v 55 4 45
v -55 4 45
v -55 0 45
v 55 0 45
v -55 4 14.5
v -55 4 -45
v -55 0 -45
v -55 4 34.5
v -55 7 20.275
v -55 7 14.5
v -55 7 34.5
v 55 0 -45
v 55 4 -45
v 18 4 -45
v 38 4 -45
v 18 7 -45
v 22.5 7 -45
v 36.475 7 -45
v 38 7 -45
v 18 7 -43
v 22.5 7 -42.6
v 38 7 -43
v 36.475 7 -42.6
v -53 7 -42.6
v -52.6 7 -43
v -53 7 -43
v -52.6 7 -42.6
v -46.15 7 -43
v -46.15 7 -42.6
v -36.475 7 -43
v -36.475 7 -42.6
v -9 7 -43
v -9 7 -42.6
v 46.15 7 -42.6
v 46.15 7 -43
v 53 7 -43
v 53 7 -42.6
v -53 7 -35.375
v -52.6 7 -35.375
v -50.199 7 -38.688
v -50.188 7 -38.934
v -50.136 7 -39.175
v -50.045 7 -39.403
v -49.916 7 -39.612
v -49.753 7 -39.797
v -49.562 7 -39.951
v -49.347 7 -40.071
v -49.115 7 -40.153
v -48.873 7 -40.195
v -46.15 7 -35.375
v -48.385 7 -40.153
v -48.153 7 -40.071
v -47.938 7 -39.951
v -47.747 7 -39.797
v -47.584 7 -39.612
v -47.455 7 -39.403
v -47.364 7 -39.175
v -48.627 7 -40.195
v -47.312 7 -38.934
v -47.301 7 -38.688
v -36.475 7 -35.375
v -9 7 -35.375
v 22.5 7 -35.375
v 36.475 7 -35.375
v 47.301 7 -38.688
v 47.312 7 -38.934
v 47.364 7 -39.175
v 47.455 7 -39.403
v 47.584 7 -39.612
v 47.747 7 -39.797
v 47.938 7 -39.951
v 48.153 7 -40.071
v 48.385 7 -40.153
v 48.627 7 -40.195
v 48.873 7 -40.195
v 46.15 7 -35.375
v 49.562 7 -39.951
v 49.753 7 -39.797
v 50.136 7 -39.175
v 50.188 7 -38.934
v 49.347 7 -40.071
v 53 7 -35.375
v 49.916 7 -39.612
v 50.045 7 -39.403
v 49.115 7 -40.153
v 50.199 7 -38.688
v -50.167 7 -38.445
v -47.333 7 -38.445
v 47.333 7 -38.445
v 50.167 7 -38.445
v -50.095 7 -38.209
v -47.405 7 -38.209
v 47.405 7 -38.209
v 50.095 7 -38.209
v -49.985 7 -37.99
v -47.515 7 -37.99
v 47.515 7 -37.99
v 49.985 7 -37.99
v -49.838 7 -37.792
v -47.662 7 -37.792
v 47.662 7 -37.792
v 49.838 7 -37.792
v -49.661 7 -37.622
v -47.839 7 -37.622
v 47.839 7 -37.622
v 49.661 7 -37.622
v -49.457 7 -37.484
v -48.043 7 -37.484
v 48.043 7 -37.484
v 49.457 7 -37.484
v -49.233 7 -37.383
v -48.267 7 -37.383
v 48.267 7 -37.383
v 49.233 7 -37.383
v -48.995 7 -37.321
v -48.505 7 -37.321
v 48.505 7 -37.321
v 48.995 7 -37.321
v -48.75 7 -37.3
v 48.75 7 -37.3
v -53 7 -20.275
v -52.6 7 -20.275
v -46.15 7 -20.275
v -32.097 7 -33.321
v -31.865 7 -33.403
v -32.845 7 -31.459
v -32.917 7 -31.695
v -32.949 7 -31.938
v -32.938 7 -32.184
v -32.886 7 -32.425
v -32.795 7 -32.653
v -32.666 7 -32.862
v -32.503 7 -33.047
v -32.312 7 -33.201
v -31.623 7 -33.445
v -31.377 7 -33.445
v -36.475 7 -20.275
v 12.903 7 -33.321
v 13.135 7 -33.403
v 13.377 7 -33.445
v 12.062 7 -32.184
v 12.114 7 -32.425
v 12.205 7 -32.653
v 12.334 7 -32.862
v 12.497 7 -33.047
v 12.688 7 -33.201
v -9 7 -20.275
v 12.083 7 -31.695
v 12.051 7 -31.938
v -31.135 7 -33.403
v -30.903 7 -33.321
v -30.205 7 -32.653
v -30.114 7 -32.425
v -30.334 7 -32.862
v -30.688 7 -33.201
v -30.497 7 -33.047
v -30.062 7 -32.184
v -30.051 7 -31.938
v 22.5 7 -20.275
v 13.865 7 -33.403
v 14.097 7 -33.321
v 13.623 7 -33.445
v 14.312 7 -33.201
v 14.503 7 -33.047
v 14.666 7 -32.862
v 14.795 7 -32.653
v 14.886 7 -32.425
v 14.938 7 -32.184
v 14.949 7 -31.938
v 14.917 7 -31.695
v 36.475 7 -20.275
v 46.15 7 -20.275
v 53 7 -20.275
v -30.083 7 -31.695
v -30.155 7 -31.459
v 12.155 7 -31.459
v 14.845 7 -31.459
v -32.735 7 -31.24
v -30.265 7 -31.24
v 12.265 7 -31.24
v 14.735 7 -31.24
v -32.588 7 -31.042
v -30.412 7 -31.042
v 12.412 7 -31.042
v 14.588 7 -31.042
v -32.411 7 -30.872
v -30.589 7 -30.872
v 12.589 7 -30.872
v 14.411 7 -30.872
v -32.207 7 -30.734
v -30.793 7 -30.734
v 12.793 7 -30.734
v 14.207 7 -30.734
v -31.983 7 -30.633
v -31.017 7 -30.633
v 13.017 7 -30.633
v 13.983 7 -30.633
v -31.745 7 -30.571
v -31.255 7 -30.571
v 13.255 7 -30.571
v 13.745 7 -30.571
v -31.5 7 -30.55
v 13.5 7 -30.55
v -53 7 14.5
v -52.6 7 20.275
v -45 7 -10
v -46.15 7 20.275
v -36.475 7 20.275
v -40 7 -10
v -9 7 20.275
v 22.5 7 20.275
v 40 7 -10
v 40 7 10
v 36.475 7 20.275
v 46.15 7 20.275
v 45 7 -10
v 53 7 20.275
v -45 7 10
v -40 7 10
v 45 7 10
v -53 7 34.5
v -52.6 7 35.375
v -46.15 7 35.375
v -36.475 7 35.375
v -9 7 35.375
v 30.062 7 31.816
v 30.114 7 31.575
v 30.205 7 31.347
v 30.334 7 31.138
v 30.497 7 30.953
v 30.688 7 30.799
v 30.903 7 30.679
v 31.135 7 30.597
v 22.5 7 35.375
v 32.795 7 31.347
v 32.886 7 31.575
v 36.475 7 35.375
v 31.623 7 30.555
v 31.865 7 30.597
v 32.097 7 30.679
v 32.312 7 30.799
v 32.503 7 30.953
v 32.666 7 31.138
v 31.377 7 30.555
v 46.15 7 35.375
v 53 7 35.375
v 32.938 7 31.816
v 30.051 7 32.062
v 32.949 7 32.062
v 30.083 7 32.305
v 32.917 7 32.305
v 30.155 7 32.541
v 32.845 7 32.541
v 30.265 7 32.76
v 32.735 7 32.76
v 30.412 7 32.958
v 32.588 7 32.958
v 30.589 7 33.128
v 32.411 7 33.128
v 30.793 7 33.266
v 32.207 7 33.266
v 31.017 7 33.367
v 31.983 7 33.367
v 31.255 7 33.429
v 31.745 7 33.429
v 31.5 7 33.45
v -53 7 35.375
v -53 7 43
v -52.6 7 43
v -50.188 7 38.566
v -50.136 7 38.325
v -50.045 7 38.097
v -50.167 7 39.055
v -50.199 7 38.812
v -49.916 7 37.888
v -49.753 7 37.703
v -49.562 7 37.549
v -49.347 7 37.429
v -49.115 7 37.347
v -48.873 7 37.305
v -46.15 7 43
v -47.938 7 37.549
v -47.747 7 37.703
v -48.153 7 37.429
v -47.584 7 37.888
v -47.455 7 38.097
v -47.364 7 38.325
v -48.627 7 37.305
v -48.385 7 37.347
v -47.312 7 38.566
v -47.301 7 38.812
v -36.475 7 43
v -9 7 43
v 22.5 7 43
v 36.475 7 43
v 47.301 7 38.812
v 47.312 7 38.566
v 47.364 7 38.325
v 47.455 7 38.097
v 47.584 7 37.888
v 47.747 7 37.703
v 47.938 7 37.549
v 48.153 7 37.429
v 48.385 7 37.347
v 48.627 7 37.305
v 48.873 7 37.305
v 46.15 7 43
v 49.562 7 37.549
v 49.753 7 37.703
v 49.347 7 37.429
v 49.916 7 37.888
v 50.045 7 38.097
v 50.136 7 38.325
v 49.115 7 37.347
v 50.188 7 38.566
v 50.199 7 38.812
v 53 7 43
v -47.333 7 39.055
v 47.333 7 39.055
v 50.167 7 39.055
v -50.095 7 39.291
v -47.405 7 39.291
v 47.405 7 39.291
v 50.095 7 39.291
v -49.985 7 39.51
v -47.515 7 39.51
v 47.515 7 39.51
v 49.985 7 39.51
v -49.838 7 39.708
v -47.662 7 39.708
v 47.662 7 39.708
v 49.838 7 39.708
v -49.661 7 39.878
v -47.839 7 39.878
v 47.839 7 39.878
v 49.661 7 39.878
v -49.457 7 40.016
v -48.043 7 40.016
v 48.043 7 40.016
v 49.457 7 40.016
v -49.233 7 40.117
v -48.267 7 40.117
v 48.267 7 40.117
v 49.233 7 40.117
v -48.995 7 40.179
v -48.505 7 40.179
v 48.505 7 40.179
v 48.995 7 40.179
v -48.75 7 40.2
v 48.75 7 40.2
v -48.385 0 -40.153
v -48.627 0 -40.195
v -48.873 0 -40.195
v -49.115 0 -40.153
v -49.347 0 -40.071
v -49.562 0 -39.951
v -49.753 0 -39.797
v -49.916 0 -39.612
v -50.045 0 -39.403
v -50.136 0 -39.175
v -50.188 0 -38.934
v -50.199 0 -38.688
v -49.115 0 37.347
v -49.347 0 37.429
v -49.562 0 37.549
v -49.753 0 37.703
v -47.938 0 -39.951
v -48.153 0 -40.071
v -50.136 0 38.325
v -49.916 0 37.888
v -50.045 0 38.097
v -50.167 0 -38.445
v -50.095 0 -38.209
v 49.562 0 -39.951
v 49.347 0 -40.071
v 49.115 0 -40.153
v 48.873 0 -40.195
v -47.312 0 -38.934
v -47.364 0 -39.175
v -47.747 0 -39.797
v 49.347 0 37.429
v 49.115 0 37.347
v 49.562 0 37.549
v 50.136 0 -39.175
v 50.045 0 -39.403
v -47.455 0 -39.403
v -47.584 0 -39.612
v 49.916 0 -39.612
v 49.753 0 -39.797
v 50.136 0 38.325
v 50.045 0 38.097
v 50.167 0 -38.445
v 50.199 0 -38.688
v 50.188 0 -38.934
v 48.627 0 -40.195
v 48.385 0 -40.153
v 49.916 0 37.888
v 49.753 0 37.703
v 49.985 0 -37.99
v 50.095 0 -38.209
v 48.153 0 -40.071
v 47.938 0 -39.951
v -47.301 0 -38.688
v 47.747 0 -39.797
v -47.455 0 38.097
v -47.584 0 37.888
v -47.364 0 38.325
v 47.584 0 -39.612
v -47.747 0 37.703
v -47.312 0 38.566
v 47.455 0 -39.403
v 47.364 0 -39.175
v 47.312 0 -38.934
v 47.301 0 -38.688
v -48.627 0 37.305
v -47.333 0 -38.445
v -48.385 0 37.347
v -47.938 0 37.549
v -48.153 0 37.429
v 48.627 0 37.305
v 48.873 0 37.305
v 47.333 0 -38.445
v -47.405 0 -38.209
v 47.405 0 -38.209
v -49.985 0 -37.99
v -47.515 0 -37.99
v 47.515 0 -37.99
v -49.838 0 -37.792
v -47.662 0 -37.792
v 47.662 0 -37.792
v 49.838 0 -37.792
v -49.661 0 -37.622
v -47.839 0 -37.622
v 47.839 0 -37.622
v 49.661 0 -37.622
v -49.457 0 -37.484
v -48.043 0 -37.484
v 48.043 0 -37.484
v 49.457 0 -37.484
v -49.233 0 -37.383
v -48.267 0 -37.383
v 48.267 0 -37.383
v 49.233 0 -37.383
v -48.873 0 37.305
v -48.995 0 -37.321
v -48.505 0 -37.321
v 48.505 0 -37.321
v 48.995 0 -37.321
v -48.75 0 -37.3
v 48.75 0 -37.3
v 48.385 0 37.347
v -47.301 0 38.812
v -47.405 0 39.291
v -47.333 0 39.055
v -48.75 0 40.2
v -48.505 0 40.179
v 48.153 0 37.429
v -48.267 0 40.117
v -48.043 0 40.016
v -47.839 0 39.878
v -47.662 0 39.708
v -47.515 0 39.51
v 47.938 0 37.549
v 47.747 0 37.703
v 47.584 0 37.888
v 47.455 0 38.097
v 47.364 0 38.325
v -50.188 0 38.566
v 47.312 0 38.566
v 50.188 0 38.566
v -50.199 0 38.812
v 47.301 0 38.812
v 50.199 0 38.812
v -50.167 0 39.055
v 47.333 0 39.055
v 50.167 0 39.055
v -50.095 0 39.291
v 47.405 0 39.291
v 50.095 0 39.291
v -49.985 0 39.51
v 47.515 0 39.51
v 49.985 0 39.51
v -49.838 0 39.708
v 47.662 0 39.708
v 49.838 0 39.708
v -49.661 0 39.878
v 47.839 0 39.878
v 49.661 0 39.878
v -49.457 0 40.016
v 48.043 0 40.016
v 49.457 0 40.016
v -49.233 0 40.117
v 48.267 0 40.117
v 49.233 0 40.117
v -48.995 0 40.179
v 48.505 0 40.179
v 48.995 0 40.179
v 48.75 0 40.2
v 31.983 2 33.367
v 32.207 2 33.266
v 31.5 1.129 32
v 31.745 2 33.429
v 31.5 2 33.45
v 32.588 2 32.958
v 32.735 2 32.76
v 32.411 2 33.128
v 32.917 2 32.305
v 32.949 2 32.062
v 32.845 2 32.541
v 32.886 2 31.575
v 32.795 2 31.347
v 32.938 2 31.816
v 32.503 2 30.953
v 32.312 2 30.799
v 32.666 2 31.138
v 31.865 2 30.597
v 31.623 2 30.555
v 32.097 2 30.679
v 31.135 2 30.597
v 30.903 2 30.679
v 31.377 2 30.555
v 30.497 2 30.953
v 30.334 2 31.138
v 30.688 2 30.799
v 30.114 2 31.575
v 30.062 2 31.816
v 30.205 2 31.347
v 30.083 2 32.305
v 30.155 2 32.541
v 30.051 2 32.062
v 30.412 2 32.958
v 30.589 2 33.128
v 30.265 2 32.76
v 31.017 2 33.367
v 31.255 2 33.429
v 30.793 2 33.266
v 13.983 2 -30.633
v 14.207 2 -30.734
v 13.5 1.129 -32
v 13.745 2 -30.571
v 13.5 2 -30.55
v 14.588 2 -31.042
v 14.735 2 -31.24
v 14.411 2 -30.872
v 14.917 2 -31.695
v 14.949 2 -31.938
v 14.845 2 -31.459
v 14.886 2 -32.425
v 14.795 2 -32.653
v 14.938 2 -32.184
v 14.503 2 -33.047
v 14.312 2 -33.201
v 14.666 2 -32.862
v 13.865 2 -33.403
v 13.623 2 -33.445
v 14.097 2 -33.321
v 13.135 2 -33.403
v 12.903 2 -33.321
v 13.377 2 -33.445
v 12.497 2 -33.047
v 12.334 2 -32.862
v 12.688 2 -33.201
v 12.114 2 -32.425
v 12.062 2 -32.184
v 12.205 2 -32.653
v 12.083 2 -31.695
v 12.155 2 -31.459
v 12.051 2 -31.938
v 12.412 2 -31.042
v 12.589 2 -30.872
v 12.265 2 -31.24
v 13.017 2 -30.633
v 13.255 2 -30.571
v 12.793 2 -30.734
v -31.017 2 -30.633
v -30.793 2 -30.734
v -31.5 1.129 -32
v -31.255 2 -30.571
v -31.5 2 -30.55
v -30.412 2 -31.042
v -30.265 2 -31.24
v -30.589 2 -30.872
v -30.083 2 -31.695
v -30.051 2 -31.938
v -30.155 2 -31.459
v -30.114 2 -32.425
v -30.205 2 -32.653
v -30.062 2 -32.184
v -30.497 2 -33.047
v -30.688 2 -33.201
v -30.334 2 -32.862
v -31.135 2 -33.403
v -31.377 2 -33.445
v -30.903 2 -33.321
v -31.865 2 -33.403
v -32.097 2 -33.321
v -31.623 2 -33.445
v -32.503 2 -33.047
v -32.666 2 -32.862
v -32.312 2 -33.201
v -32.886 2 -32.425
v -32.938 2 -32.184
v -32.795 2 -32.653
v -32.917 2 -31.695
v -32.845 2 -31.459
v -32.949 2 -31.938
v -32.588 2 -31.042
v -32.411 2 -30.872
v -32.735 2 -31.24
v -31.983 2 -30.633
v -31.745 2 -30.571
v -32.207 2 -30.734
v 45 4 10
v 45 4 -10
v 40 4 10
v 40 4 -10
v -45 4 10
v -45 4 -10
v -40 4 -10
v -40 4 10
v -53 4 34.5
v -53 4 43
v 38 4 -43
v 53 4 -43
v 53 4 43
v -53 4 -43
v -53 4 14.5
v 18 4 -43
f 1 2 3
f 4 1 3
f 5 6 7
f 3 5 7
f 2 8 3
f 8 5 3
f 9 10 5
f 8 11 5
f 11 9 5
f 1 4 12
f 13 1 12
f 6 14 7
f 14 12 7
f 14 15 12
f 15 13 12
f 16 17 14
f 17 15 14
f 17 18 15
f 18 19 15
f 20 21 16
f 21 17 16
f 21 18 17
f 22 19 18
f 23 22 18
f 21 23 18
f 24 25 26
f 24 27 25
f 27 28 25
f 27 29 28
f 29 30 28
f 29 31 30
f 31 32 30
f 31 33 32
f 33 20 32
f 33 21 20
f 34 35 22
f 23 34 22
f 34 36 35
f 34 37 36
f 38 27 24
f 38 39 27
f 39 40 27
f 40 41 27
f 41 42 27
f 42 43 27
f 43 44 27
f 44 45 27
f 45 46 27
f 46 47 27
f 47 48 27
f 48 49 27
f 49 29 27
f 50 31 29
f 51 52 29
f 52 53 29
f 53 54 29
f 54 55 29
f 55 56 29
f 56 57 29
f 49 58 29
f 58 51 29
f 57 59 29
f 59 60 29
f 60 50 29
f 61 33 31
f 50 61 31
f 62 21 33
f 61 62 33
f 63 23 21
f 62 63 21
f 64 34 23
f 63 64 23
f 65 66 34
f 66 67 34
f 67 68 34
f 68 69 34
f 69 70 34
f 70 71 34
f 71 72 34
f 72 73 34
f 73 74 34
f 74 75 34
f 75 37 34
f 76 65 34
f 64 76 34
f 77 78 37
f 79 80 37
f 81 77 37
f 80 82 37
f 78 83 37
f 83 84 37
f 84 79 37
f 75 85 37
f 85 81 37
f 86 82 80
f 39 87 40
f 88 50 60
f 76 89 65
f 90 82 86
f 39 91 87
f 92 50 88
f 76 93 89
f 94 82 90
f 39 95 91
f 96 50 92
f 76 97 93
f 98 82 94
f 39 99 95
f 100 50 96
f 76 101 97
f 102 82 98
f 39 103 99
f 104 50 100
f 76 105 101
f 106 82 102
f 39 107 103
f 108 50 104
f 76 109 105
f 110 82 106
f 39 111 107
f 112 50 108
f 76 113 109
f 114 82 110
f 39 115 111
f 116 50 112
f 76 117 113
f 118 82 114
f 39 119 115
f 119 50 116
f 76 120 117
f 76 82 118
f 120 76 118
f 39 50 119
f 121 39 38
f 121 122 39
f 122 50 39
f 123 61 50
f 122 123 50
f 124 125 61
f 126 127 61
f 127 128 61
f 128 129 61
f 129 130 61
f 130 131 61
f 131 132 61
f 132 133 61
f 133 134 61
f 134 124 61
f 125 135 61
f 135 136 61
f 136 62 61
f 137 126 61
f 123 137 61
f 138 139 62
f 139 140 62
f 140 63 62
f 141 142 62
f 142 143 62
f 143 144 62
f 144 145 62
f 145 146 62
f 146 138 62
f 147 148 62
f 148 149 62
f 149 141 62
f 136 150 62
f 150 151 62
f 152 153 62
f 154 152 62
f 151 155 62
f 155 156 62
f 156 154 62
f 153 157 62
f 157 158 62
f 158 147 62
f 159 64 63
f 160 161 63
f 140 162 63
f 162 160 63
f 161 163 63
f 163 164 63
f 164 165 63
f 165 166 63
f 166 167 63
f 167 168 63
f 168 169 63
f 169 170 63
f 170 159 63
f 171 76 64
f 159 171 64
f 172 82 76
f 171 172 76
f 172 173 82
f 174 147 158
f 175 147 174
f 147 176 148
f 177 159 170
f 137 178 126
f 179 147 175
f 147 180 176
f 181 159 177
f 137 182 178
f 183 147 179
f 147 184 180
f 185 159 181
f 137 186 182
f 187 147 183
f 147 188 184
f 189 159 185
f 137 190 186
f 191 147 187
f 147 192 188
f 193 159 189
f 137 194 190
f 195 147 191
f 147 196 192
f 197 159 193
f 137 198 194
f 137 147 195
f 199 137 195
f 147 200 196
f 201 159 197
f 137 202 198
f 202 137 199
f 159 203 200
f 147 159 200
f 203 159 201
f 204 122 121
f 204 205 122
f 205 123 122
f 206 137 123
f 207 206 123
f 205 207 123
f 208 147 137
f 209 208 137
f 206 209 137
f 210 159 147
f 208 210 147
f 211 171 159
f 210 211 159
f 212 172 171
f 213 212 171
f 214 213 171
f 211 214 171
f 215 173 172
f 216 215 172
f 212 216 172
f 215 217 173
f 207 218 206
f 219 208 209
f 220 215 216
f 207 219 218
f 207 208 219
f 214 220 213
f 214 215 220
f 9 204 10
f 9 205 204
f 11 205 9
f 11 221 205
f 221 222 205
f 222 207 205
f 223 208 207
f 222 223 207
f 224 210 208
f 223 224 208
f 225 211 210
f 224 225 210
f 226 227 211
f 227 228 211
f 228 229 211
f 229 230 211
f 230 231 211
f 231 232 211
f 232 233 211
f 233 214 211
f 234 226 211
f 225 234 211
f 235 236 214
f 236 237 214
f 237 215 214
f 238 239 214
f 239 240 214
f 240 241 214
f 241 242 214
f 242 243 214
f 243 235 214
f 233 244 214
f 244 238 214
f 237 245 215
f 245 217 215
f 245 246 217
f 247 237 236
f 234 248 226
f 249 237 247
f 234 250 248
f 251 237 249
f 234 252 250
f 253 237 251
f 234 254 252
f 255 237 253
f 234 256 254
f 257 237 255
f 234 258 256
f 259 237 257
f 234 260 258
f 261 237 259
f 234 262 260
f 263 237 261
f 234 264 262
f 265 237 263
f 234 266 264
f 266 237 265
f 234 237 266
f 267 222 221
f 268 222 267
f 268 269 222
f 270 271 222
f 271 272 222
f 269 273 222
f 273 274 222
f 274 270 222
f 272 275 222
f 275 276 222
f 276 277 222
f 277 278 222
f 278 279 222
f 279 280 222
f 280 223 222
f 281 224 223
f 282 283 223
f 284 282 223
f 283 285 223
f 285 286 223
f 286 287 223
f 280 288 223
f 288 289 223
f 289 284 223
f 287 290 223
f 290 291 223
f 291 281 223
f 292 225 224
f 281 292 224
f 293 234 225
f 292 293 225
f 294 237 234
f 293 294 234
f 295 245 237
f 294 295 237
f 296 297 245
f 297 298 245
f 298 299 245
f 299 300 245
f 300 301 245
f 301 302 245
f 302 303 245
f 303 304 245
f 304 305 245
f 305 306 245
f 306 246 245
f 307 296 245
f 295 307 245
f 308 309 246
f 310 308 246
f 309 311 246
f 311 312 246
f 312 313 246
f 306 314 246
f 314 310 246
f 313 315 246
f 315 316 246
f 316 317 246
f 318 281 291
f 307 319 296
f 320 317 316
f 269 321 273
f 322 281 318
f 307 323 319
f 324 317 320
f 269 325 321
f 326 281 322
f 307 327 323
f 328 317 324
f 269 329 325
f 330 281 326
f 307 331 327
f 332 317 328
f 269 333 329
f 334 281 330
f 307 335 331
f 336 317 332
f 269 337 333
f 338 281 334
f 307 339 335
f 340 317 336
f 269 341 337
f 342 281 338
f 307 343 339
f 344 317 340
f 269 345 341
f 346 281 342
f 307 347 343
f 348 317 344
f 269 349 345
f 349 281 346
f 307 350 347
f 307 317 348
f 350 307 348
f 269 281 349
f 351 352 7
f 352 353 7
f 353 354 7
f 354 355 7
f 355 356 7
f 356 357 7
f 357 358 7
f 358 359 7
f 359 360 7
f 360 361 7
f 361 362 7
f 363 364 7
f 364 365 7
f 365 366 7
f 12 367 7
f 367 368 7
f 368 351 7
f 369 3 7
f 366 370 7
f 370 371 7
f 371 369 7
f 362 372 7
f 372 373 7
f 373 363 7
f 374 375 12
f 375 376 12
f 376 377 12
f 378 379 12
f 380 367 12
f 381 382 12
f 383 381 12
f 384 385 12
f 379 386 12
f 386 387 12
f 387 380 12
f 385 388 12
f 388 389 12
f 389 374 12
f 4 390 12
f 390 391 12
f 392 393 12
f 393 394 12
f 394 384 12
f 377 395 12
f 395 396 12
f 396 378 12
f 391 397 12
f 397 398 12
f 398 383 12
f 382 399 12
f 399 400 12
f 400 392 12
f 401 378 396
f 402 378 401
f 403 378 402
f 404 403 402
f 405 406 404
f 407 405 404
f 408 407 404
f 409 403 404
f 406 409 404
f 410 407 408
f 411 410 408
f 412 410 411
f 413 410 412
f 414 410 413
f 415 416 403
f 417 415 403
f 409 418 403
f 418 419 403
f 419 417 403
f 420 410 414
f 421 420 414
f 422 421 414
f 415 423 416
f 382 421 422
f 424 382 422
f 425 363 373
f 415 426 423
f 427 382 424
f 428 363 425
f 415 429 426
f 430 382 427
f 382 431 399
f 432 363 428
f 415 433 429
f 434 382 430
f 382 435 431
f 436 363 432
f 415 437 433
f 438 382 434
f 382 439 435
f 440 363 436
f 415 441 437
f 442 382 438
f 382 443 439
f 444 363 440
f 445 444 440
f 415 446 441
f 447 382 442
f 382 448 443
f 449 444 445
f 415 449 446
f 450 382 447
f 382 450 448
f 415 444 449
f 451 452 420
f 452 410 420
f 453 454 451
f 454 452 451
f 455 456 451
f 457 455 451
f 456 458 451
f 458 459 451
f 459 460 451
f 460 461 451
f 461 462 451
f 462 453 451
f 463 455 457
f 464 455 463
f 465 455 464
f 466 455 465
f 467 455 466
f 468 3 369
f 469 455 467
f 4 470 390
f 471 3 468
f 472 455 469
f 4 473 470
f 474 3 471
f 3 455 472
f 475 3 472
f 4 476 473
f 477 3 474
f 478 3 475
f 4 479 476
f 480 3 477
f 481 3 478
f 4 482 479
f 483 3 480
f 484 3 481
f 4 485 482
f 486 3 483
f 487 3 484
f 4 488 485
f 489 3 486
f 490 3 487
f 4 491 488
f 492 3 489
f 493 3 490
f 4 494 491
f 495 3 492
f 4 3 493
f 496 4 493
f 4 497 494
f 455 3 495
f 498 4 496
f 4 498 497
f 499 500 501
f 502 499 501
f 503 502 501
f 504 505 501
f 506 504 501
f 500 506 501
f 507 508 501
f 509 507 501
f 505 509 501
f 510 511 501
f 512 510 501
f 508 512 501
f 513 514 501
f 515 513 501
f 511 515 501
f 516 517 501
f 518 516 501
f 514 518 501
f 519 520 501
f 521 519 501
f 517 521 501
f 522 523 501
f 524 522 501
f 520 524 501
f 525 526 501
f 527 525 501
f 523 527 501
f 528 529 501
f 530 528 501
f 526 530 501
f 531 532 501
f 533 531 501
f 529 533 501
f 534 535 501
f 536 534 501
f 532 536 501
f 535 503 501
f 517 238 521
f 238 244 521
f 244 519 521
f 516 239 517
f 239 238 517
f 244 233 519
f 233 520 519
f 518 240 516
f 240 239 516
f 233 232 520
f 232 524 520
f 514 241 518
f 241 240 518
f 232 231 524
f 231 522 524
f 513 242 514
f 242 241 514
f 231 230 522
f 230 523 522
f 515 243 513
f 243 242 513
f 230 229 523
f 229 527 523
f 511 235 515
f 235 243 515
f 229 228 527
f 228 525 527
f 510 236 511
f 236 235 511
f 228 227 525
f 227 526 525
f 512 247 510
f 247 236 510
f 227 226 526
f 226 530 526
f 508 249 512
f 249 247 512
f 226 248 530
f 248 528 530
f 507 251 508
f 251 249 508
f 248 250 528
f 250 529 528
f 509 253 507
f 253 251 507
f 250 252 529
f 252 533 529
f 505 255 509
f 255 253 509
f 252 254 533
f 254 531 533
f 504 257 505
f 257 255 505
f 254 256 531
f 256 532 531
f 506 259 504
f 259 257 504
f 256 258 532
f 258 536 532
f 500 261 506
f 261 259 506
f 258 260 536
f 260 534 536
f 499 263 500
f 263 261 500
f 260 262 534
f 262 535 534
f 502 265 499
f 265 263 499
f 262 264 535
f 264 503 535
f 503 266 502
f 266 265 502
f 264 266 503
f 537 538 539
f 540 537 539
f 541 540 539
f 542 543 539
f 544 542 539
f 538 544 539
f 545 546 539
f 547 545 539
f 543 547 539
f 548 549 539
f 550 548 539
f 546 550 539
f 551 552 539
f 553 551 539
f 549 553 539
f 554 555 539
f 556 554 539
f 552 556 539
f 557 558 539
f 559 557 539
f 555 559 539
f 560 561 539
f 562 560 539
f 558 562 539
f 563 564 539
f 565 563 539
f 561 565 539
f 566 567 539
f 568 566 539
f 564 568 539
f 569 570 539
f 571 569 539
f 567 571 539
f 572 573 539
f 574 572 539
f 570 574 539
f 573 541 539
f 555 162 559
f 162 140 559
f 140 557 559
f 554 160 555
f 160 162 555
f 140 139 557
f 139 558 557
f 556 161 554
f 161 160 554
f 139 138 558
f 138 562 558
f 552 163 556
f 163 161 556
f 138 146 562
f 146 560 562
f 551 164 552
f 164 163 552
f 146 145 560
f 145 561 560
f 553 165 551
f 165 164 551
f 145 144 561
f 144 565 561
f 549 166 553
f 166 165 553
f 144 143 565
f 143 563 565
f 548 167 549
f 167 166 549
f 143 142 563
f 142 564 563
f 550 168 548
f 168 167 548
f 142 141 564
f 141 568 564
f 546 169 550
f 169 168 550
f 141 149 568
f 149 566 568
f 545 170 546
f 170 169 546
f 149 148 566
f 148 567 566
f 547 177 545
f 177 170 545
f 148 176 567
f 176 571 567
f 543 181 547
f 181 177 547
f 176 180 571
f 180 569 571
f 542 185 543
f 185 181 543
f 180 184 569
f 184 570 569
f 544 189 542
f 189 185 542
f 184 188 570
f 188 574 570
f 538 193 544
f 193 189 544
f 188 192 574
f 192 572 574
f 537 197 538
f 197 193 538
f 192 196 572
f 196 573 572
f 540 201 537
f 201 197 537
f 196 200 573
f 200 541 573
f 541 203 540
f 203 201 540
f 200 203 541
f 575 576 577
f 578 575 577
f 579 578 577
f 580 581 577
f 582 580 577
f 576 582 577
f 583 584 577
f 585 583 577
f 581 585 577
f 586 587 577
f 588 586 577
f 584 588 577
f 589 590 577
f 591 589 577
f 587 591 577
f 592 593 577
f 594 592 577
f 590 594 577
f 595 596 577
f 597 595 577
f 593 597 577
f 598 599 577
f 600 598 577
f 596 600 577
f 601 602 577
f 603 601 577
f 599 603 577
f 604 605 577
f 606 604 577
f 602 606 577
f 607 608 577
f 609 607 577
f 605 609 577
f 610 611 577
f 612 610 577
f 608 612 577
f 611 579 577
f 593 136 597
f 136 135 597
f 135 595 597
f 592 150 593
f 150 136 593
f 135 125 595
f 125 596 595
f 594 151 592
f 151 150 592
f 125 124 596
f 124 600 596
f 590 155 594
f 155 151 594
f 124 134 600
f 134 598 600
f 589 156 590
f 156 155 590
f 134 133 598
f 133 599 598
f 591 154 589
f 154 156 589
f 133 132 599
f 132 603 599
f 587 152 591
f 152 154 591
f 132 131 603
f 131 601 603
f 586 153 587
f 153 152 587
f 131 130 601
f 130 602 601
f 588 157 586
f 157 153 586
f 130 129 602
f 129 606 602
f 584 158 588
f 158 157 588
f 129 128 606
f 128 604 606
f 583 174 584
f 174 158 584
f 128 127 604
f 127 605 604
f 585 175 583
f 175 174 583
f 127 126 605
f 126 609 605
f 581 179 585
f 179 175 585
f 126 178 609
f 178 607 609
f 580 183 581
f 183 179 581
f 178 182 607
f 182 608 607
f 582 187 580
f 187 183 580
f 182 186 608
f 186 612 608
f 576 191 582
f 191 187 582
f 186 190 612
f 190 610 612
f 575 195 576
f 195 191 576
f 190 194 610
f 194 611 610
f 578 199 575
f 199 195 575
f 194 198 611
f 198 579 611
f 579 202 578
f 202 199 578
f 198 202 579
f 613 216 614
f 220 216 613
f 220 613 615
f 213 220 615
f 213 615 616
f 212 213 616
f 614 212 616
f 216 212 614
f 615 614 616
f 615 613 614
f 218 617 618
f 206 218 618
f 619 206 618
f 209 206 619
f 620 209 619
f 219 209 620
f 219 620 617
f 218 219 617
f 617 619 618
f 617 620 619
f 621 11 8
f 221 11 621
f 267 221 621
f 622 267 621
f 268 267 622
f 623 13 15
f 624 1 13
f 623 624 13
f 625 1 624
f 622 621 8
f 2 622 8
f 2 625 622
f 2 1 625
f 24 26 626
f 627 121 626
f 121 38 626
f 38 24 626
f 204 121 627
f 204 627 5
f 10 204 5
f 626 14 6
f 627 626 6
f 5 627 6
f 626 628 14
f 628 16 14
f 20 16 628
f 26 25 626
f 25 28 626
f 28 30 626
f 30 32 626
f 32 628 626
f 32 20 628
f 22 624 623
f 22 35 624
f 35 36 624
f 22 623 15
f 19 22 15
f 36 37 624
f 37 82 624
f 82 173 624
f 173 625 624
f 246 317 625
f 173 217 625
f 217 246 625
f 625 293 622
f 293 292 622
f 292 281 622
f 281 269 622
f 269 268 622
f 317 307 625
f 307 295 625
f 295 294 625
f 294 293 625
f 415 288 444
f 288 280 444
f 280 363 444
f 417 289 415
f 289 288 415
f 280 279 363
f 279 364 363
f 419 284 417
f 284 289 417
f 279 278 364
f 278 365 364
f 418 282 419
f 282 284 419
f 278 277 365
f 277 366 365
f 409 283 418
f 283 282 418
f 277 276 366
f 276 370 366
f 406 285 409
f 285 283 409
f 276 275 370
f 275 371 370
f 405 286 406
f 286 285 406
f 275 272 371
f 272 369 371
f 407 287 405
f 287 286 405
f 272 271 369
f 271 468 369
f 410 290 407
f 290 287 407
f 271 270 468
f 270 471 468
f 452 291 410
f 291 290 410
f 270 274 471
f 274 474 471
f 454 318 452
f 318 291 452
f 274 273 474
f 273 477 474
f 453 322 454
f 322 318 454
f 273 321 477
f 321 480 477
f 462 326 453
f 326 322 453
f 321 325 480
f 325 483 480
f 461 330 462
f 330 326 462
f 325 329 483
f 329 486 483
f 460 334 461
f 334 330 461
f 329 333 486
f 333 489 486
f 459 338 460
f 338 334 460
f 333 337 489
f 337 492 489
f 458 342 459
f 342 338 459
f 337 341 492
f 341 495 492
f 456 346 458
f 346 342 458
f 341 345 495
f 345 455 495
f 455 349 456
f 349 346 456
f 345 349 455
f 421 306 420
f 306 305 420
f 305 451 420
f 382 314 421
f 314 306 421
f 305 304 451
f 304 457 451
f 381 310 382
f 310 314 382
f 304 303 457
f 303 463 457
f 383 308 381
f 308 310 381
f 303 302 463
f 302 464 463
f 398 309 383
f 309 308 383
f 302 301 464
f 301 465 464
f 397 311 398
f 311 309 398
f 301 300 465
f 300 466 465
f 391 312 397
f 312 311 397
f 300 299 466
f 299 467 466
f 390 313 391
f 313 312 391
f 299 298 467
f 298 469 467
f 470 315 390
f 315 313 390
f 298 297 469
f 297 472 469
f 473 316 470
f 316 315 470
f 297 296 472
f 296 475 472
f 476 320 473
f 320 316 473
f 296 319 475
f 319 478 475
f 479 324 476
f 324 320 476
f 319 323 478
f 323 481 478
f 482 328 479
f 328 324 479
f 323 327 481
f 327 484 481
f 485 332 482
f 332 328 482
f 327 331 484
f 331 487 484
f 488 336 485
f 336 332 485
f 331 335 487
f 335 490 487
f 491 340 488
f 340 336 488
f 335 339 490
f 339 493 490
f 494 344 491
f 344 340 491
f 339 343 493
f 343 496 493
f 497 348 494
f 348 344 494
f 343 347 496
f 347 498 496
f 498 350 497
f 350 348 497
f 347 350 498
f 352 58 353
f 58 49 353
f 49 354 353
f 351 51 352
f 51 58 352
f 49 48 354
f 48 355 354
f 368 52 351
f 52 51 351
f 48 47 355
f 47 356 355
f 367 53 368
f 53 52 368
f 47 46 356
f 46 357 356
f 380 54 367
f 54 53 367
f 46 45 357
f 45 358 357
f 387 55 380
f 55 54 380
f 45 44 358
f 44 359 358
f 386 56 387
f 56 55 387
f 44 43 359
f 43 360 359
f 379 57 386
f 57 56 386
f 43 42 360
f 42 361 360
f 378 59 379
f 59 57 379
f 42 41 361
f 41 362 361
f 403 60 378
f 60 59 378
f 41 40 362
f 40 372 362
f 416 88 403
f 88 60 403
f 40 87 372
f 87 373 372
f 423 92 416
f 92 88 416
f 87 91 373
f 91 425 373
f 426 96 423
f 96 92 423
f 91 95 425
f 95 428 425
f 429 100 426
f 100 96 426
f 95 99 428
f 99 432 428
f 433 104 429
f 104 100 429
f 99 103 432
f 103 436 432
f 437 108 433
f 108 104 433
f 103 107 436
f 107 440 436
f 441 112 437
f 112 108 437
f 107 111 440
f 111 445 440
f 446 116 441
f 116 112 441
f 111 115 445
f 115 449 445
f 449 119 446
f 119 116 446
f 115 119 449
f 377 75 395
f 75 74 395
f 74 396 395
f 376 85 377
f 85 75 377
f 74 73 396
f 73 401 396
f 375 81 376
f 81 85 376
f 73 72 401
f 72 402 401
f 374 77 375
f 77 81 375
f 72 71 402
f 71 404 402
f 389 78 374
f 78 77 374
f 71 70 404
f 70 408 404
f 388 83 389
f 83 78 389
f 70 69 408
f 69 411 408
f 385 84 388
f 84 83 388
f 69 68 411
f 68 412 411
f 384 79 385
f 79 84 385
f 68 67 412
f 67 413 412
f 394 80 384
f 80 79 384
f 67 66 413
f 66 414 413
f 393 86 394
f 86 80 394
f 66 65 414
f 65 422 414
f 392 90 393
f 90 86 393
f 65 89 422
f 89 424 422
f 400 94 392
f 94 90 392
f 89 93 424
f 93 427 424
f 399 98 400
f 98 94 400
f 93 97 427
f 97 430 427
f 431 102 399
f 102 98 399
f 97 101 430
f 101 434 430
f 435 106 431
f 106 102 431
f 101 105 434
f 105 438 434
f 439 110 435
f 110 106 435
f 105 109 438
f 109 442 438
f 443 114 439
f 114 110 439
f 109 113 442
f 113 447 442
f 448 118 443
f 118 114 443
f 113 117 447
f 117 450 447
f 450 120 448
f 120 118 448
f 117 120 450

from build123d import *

# Parameters (mm, degrees)
SKETCH1_W                  = 110
SKETCH1_H                  = 90
BOSS_EXTRUDE1_DEPTH        = 7
M2_5_CLEARANCE_HOLE1_D     = 2.9
M2_5_CLEARANCE_HOLE1_DEPTH = 5
M2_5_CLEARANCE_HOLE1_TIP   = 0.871247898
SKETCH8_W                  = 5
SKETCH8_H                  = 20
CUT_EXTRUDE5_DEPTH         = 3
SKETCH10_W                 = 2
SKETCH10_H                 = 59.5
SKETCH10_H_2               = 10.5
CUT_EXTRUDE6_DEPTH         = 3
SKETCH11_W                 = 71
SKETCH11_H                 = 2
SKETCH11_W_2               = 17
CUT_EXTRUDE7_DEPTH         = 3
SKETCH12_W                 = 2
SKETCH12_H                 = 88
CUT_EXTRUDE8_DEPTH         = 3
SKETCH13_W                 = 106
SKETCH13_H                 = 2
CUT_EXTRUDE9_DEPTH         = 3
M2_5_CLEARANCE_HOLE2_D     = 2.9


with BuildPart() as part:
    # Sketch1 → Boss-Extrude1 (new body)
    with BuildSketch(Plane(origin=(0, 0, 0), x_dir=(1, 0, 0), z_dir=(0, 1, 0))):
        Rectangle(SKETCH1_W, SKETCH1_H)
    extrude(amount=BOSS_EXTRUDE1_DEPTH)

    # M2.5 Clearance Hole1
    with Locations(Plane(origin=(0, 7, 0), x_dir=(1, 0, 0), z_dir=(0, 1, 0))):
        with Locations((-31.5, 32), (13.5, 32), (31.5, -32)):
            Hole(M2_5_CLEARANCE_HOLE1_D / 2, depth=M2_5_CLEARANCE_HOLE1_DEPTH)
            with Locations((0, 0, -(M2_5_CLEARANCE_HOLE1_DEPTH + M2_5_CLEARANCE_HOLE1_TIP / 2))):  # 118° drill point
                Cone(0, M2_5_CLEARANCE_HOLE1_D / 2, M2_5_CLEARANCE_HOLE1_TIP, mode=Mode.SUBTRACT)

    # Sketch8 → Cut-Extrude5 (cut)
    with BuildSketch(Plane(origin=(0, 7, 0), x_dir=(1, 0, 0), z_dir=(0, 1, 0))):
        with Locations((-42.5, 0)):
            Rectangle(SKETCH8_W, SKETCH8_H)
        with Locations((42.5, 0)):
            Rectangle(SKETCH8_W, SKETCH8_H)
    extrude(amount=-CUT_EXTRUDE5_DEPTH, mode=Mode.SUBTRACT)

    # Sketch10 → Cut-Extrude6 (cut)
    with BuildSketch(Plane(origin=(0, 7, 0), x_dir=(1, 0, 0), z_dir=(0, 1, 0))):
        with Locations((-54, 15.25)):
            Rectangle(SKETCH10_W, SKETCH10_H)
        with Locations((-54, -39.75)):
            Rectangle(SKETCH10_W, SKETCH10_H_2)
    extrude(amount=-CUT_EXTRUDE6_DEPTH, mode=Mode.SUBTRACT)

    # Sketch11 → Cut-Extrude7 (cut)
    with BuildSketch(Plane(origin=(0, 7, 0), x_dir=(1, 0, 0), z_dir=(0, 1, 0))):
        with Locations((-17.5, 44)):
            Rectangle(SKETCH11_W, SKETCH11_H)
        with Locations((46.5, 44)):
            Rectangle(SKETCH11_W_2, SKETCH11_H)
    extrude(amount=-CUT_EXTRUDE7_DEPTH, mode=Mode.SUBTRACT)

    # Sketch12 → Cut-Extrude8 (cut)
    with BuildSketch(Plane(origin=(0, 7, 0), x_dir=(1, 0, 0), z_dir=(0, 1, 0))):
        with Locations((54, -1)):
            Rectangle(SKETCH12_W, SKETCH12_H)
    extrude(amount=-CUT_EXTRUDE8_DEPTH, mode=Mode.SUBTRACT)

    # Sketch13 → Cut-Extrude9 (cut)
    with BuildSketch(Plane(origin=(0, 7, 0), x_dir=(1, 0, 0), z_dir=(0, 1, 0))):
        with Locations((0, -44)):
            Rectangle(SKETCH13_W, SKETCH13_H)
    extrude(amount=-CUT_EXTRUDE9_DEPTH, mode=Mode.SUBTRACT)

    # M2.5 Clearance Hole2 (through all)
    with Locations(Plane(origin=(0, 7, 0), x_dir=(1, 0, 0), z_dir=(0, 1, 0))):
        with Locations((48.75, 38.75), (-48.75, 38.75), (48.75, -38.75), (-48.75, -38.75)):
            Hole(M2_5_CLEARANCE_HOLE2_D / 2)


solid = part.part
